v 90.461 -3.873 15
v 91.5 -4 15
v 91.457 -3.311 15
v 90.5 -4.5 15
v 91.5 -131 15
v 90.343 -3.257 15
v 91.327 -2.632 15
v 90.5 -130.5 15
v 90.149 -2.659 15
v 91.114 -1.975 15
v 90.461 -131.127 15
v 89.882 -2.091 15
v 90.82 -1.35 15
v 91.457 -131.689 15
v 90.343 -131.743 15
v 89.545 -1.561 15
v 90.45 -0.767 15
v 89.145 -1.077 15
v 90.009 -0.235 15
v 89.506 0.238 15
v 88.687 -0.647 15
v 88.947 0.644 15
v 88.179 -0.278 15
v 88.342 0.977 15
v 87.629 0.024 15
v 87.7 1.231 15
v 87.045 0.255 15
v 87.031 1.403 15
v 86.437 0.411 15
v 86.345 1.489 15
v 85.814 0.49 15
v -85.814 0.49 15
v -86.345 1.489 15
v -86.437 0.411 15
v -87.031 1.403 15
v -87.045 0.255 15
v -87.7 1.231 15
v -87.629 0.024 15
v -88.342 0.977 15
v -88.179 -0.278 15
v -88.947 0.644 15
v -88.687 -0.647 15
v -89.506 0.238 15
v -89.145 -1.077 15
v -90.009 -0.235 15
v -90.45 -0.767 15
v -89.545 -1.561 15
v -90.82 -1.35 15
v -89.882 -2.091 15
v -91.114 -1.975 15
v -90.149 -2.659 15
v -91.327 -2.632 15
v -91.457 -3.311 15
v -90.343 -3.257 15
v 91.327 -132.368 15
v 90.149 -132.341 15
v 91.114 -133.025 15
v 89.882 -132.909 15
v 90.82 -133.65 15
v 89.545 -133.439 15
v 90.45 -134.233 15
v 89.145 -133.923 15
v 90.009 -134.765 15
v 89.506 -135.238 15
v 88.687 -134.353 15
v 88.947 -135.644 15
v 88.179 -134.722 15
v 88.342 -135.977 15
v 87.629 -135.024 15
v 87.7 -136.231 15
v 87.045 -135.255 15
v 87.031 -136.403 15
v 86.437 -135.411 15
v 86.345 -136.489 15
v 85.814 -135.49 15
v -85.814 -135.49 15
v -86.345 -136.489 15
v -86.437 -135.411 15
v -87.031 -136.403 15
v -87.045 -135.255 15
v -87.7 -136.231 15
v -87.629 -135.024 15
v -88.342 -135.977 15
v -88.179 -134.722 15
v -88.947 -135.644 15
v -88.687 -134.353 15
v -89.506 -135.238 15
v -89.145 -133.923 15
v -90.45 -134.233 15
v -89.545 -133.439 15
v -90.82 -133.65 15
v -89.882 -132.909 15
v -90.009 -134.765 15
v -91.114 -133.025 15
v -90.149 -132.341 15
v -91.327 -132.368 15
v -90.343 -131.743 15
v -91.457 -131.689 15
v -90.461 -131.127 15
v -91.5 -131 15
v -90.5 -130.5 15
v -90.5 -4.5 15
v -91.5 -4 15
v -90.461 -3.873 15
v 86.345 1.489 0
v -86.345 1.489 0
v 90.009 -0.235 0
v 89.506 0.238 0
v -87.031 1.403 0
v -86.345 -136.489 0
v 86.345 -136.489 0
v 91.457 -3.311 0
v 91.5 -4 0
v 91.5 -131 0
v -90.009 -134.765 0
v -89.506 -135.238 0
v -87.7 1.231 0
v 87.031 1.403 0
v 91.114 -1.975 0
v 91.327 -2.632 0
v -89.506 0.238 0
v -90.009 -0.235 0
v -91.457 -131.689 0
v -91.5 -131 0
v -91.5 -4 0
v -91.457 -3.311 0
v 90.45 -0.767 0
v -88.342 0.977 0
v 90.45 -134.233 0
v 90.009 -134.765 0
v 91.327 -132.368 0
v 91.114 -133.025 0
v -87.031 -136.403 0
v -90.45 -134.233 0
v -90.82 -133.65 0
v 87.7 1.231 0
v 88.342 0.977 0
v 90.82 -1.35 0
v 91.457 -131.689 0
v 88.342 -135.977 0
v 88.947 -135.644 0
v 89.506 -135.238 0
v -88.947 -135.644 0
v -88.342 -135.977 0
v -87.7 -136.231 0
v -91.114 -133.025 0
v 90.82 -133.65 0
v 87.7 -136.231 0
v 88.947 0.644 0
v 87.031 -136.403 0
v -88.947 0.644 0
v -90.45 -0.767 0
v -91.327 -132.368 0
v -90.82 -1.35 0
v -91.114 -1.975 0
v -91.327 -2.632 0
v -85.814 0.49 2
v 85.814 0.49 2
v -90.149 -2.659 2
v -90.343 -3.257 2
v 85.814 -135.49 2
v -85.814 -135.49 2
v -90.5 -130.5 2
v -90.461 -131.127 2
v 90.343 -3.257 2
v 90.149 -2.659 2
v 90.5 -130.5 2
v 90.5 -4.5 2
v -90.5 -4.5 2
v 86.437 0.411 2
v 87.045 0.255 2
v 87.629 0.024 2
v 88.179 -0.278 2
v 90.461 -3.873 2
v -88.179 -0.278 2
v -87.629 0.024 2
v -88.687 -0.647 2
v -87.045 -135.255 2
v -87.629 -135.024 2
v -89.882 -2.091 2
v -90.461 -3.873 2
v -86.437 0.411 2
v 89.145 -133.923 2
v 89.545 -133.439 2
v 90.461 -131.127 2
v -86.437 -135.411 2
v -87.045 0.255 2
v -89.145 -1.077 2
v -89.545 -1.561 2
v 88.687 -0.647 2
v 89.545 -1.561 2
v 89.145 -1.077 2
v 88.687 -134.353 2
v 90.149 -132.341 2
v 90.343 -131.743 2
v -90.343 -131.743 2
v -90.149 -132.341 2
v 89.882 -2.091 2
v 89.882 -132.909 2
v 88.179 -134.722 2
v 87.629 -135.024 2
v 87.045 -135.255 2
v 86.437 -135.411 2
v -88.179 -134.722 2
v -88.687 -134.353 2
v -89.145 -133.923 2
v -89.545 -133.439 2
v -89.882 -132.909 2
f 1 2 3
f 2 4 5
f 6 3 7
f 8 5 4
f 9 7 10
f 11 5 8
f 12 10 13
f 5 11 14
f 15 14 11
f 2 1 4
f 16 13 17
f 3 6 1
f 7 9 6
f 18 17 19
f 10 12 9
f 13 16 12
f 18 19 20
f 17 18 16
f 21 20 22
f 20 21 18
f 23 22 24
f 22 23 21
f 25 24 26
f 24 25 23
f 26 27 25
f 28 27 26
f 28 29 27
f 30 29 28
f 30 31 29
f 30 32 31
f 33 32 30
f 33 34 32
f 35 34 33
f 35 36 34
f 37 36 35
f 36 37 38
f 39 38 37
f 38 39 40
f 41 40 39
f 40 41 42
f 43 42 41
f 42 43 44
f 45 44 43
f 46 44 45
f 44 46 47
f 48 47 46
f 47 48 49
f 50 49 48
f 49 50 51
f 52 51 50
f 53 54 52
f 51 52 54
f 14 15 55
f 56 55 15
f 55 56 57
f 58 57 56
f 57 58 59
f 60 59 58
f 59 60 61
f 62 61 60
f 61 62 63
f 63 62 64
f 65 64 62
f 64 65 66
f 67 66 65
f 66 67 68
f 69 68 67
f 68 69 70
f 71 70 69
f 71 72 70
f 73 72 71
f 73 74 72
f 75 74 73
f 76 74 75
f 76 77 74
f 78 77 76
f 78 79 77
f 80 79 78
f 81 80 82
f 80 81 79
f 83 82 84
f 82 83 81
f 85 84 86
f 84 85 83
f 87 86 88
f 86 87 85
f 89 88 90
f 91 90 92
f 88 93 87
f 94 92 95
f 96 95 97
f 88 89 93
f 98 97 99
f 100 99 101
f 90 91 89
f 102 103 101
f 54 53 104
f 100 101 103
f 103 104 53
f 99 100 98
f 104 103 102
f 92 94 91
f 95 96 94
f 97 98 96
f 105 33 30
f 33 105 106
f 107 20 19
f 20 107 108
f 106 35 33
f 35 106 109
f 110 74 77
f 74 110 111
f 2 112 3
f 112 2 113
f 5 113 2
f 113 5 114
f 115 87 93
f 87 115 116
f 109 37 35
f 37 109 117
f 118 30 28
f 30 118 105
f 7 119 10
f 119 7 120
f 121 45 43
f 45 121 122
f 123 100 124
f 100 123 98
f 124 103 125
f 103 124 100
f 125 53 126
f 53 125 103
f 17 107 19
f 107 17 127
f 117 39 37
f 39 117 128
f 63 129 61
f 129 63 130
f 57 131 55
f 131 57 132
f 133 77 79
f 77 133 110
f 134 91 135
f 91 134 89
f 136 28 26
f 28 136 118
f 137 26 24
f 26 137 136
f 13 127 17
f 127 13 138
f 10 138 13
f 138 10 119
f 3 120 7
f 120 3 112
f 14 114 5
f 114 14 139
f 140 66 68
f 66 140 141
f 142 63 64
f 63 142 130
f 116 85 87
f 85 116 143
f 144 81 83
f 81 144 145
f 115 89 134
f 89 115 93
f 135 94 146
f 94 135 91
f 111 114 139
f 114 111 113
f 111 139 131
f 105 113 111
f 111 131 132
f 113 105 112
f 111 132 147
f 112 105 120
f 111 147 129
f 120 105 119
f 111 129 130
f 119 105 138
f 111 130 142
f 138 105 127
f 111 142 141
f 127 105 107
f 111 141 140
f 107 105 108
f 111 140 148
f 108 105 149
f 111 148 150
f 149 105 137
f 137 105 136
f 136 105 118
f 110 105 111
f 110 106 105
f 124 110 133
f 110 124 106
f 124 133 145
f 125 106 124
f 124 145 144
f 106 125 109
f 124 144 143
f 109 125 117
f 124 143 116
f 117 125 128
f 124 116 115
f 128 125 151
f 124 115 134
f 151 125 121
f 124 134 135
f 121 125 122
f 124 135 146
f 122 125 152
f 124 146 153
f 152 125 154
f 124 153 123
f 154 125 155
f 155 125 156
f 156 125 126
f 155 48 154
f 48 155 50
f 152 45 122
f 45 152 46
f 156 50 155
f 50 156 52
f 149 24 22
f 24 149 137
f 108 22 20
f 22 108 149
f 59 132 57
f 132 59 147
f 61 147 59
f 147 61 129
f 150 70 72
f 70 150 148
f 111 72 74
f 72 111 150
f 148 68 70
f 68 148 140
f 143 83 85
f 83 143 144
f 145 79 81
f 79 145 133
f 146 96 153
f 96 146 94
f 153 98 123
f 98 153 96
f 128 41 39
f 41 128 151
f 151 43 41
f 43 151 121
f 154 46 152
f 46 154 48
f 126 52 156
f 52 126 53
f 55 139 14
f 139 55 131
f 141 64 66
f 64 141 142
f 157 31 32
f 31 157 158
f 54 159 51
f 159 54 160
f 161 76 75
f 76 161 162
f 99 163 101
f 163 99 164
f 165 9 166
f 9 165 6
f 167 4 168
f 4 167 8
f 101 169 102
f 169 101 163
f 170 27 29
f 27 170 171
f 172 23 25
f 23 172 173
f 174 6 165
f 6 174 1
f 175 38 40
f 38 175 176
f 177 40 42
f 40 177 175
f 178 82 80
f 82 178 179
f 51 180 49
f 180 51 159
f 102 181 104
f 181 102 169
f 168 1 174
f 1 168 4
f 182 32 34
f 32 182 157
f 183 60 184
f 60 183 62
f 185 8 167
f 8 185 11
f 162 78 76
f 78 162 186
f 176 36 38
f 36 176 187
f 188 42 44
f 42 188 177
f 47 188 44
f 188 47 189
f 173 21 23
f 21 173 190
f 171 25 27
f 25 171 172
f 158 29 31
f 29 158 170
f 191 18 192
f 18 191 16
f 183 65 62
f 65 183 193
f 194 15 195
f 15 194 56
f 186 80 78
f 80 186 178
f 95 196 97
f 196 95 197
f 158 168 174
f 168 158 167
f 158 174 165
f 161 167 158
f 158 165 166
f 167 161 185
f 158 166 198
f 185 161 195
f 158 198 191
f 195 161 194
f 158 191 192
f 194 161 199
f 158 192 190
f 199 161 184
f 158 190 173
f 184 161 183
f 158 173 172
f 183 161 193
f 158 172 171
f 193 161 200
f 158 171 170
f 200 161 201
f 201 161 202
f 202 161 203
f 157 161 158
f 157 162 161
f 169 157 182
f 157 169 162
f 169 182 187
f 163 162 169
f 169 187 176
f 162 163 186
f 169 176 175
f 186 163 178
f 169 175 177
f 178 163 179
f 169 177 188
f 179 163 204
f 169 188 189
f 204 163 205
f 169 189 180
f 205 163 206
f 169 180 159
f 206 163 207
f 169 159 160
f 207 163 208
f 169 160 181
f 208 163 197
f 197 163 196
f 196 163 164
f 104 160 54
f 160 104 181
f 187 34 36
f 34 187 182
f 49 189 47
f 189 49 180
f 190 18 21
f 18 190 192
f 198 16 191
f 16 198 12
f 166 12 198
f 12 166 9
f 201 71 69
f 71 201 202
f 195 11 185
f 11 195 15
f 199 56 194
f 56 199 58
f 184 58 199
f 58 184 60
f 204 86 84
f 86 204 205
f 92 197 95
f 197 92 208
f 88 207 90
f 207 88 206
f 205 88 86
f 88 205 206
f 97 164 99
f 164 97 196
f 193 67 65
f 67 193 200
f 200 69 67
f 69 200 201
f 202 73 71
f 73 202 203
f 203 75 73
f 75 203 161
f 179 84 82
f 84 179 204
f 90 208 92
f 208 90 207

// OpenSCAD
$fn = 50;


difference() {
	union() {
		translate(v = [0, -67.5000000000, 0]) {
			hull() {
				translate(v = [-86.0000000000, 63.5000000000, 0]) {
					cylinder(h = 15, r = 5.5000000000);
				}
				translate(v = [86.0000000000, 63.5000000000, 0]) {
					cylinder(h = 15, r = 5.5000000000);
				}
				translate(v = [-86.0000000000, -63.5000000000, 0]) {
					cylinder(h = 15, r = 5.5000000000);
				}
				translate(v = [86.0000000000, -63.5000000000, 0]) {
					cylinder(h = 15, r = 5.5000000000);
				}
			}
		}
	}
	union() {
		translate(v = [0, -67.5000000000, 2]) {
			hull() {
				translate(v = [-85.5000000000, 63.0000000000, 0]) {
					cylinder(h = 30, r = 5);
				}
				translate(v = [85.5000000000, 63.0000000000, 0]) {
					cylinder(h = 30, r = 5);
				}
				translate(v = [-85.5000000000, -63.0000000000, 0]) {
					cylinder(h = 30, r = 5);
				}
				translate(v = [85.5000000000, -63.0000000000, 0]) {
					cylinder(h = 30, r = 5);
				}
			}
		}
	}
}
